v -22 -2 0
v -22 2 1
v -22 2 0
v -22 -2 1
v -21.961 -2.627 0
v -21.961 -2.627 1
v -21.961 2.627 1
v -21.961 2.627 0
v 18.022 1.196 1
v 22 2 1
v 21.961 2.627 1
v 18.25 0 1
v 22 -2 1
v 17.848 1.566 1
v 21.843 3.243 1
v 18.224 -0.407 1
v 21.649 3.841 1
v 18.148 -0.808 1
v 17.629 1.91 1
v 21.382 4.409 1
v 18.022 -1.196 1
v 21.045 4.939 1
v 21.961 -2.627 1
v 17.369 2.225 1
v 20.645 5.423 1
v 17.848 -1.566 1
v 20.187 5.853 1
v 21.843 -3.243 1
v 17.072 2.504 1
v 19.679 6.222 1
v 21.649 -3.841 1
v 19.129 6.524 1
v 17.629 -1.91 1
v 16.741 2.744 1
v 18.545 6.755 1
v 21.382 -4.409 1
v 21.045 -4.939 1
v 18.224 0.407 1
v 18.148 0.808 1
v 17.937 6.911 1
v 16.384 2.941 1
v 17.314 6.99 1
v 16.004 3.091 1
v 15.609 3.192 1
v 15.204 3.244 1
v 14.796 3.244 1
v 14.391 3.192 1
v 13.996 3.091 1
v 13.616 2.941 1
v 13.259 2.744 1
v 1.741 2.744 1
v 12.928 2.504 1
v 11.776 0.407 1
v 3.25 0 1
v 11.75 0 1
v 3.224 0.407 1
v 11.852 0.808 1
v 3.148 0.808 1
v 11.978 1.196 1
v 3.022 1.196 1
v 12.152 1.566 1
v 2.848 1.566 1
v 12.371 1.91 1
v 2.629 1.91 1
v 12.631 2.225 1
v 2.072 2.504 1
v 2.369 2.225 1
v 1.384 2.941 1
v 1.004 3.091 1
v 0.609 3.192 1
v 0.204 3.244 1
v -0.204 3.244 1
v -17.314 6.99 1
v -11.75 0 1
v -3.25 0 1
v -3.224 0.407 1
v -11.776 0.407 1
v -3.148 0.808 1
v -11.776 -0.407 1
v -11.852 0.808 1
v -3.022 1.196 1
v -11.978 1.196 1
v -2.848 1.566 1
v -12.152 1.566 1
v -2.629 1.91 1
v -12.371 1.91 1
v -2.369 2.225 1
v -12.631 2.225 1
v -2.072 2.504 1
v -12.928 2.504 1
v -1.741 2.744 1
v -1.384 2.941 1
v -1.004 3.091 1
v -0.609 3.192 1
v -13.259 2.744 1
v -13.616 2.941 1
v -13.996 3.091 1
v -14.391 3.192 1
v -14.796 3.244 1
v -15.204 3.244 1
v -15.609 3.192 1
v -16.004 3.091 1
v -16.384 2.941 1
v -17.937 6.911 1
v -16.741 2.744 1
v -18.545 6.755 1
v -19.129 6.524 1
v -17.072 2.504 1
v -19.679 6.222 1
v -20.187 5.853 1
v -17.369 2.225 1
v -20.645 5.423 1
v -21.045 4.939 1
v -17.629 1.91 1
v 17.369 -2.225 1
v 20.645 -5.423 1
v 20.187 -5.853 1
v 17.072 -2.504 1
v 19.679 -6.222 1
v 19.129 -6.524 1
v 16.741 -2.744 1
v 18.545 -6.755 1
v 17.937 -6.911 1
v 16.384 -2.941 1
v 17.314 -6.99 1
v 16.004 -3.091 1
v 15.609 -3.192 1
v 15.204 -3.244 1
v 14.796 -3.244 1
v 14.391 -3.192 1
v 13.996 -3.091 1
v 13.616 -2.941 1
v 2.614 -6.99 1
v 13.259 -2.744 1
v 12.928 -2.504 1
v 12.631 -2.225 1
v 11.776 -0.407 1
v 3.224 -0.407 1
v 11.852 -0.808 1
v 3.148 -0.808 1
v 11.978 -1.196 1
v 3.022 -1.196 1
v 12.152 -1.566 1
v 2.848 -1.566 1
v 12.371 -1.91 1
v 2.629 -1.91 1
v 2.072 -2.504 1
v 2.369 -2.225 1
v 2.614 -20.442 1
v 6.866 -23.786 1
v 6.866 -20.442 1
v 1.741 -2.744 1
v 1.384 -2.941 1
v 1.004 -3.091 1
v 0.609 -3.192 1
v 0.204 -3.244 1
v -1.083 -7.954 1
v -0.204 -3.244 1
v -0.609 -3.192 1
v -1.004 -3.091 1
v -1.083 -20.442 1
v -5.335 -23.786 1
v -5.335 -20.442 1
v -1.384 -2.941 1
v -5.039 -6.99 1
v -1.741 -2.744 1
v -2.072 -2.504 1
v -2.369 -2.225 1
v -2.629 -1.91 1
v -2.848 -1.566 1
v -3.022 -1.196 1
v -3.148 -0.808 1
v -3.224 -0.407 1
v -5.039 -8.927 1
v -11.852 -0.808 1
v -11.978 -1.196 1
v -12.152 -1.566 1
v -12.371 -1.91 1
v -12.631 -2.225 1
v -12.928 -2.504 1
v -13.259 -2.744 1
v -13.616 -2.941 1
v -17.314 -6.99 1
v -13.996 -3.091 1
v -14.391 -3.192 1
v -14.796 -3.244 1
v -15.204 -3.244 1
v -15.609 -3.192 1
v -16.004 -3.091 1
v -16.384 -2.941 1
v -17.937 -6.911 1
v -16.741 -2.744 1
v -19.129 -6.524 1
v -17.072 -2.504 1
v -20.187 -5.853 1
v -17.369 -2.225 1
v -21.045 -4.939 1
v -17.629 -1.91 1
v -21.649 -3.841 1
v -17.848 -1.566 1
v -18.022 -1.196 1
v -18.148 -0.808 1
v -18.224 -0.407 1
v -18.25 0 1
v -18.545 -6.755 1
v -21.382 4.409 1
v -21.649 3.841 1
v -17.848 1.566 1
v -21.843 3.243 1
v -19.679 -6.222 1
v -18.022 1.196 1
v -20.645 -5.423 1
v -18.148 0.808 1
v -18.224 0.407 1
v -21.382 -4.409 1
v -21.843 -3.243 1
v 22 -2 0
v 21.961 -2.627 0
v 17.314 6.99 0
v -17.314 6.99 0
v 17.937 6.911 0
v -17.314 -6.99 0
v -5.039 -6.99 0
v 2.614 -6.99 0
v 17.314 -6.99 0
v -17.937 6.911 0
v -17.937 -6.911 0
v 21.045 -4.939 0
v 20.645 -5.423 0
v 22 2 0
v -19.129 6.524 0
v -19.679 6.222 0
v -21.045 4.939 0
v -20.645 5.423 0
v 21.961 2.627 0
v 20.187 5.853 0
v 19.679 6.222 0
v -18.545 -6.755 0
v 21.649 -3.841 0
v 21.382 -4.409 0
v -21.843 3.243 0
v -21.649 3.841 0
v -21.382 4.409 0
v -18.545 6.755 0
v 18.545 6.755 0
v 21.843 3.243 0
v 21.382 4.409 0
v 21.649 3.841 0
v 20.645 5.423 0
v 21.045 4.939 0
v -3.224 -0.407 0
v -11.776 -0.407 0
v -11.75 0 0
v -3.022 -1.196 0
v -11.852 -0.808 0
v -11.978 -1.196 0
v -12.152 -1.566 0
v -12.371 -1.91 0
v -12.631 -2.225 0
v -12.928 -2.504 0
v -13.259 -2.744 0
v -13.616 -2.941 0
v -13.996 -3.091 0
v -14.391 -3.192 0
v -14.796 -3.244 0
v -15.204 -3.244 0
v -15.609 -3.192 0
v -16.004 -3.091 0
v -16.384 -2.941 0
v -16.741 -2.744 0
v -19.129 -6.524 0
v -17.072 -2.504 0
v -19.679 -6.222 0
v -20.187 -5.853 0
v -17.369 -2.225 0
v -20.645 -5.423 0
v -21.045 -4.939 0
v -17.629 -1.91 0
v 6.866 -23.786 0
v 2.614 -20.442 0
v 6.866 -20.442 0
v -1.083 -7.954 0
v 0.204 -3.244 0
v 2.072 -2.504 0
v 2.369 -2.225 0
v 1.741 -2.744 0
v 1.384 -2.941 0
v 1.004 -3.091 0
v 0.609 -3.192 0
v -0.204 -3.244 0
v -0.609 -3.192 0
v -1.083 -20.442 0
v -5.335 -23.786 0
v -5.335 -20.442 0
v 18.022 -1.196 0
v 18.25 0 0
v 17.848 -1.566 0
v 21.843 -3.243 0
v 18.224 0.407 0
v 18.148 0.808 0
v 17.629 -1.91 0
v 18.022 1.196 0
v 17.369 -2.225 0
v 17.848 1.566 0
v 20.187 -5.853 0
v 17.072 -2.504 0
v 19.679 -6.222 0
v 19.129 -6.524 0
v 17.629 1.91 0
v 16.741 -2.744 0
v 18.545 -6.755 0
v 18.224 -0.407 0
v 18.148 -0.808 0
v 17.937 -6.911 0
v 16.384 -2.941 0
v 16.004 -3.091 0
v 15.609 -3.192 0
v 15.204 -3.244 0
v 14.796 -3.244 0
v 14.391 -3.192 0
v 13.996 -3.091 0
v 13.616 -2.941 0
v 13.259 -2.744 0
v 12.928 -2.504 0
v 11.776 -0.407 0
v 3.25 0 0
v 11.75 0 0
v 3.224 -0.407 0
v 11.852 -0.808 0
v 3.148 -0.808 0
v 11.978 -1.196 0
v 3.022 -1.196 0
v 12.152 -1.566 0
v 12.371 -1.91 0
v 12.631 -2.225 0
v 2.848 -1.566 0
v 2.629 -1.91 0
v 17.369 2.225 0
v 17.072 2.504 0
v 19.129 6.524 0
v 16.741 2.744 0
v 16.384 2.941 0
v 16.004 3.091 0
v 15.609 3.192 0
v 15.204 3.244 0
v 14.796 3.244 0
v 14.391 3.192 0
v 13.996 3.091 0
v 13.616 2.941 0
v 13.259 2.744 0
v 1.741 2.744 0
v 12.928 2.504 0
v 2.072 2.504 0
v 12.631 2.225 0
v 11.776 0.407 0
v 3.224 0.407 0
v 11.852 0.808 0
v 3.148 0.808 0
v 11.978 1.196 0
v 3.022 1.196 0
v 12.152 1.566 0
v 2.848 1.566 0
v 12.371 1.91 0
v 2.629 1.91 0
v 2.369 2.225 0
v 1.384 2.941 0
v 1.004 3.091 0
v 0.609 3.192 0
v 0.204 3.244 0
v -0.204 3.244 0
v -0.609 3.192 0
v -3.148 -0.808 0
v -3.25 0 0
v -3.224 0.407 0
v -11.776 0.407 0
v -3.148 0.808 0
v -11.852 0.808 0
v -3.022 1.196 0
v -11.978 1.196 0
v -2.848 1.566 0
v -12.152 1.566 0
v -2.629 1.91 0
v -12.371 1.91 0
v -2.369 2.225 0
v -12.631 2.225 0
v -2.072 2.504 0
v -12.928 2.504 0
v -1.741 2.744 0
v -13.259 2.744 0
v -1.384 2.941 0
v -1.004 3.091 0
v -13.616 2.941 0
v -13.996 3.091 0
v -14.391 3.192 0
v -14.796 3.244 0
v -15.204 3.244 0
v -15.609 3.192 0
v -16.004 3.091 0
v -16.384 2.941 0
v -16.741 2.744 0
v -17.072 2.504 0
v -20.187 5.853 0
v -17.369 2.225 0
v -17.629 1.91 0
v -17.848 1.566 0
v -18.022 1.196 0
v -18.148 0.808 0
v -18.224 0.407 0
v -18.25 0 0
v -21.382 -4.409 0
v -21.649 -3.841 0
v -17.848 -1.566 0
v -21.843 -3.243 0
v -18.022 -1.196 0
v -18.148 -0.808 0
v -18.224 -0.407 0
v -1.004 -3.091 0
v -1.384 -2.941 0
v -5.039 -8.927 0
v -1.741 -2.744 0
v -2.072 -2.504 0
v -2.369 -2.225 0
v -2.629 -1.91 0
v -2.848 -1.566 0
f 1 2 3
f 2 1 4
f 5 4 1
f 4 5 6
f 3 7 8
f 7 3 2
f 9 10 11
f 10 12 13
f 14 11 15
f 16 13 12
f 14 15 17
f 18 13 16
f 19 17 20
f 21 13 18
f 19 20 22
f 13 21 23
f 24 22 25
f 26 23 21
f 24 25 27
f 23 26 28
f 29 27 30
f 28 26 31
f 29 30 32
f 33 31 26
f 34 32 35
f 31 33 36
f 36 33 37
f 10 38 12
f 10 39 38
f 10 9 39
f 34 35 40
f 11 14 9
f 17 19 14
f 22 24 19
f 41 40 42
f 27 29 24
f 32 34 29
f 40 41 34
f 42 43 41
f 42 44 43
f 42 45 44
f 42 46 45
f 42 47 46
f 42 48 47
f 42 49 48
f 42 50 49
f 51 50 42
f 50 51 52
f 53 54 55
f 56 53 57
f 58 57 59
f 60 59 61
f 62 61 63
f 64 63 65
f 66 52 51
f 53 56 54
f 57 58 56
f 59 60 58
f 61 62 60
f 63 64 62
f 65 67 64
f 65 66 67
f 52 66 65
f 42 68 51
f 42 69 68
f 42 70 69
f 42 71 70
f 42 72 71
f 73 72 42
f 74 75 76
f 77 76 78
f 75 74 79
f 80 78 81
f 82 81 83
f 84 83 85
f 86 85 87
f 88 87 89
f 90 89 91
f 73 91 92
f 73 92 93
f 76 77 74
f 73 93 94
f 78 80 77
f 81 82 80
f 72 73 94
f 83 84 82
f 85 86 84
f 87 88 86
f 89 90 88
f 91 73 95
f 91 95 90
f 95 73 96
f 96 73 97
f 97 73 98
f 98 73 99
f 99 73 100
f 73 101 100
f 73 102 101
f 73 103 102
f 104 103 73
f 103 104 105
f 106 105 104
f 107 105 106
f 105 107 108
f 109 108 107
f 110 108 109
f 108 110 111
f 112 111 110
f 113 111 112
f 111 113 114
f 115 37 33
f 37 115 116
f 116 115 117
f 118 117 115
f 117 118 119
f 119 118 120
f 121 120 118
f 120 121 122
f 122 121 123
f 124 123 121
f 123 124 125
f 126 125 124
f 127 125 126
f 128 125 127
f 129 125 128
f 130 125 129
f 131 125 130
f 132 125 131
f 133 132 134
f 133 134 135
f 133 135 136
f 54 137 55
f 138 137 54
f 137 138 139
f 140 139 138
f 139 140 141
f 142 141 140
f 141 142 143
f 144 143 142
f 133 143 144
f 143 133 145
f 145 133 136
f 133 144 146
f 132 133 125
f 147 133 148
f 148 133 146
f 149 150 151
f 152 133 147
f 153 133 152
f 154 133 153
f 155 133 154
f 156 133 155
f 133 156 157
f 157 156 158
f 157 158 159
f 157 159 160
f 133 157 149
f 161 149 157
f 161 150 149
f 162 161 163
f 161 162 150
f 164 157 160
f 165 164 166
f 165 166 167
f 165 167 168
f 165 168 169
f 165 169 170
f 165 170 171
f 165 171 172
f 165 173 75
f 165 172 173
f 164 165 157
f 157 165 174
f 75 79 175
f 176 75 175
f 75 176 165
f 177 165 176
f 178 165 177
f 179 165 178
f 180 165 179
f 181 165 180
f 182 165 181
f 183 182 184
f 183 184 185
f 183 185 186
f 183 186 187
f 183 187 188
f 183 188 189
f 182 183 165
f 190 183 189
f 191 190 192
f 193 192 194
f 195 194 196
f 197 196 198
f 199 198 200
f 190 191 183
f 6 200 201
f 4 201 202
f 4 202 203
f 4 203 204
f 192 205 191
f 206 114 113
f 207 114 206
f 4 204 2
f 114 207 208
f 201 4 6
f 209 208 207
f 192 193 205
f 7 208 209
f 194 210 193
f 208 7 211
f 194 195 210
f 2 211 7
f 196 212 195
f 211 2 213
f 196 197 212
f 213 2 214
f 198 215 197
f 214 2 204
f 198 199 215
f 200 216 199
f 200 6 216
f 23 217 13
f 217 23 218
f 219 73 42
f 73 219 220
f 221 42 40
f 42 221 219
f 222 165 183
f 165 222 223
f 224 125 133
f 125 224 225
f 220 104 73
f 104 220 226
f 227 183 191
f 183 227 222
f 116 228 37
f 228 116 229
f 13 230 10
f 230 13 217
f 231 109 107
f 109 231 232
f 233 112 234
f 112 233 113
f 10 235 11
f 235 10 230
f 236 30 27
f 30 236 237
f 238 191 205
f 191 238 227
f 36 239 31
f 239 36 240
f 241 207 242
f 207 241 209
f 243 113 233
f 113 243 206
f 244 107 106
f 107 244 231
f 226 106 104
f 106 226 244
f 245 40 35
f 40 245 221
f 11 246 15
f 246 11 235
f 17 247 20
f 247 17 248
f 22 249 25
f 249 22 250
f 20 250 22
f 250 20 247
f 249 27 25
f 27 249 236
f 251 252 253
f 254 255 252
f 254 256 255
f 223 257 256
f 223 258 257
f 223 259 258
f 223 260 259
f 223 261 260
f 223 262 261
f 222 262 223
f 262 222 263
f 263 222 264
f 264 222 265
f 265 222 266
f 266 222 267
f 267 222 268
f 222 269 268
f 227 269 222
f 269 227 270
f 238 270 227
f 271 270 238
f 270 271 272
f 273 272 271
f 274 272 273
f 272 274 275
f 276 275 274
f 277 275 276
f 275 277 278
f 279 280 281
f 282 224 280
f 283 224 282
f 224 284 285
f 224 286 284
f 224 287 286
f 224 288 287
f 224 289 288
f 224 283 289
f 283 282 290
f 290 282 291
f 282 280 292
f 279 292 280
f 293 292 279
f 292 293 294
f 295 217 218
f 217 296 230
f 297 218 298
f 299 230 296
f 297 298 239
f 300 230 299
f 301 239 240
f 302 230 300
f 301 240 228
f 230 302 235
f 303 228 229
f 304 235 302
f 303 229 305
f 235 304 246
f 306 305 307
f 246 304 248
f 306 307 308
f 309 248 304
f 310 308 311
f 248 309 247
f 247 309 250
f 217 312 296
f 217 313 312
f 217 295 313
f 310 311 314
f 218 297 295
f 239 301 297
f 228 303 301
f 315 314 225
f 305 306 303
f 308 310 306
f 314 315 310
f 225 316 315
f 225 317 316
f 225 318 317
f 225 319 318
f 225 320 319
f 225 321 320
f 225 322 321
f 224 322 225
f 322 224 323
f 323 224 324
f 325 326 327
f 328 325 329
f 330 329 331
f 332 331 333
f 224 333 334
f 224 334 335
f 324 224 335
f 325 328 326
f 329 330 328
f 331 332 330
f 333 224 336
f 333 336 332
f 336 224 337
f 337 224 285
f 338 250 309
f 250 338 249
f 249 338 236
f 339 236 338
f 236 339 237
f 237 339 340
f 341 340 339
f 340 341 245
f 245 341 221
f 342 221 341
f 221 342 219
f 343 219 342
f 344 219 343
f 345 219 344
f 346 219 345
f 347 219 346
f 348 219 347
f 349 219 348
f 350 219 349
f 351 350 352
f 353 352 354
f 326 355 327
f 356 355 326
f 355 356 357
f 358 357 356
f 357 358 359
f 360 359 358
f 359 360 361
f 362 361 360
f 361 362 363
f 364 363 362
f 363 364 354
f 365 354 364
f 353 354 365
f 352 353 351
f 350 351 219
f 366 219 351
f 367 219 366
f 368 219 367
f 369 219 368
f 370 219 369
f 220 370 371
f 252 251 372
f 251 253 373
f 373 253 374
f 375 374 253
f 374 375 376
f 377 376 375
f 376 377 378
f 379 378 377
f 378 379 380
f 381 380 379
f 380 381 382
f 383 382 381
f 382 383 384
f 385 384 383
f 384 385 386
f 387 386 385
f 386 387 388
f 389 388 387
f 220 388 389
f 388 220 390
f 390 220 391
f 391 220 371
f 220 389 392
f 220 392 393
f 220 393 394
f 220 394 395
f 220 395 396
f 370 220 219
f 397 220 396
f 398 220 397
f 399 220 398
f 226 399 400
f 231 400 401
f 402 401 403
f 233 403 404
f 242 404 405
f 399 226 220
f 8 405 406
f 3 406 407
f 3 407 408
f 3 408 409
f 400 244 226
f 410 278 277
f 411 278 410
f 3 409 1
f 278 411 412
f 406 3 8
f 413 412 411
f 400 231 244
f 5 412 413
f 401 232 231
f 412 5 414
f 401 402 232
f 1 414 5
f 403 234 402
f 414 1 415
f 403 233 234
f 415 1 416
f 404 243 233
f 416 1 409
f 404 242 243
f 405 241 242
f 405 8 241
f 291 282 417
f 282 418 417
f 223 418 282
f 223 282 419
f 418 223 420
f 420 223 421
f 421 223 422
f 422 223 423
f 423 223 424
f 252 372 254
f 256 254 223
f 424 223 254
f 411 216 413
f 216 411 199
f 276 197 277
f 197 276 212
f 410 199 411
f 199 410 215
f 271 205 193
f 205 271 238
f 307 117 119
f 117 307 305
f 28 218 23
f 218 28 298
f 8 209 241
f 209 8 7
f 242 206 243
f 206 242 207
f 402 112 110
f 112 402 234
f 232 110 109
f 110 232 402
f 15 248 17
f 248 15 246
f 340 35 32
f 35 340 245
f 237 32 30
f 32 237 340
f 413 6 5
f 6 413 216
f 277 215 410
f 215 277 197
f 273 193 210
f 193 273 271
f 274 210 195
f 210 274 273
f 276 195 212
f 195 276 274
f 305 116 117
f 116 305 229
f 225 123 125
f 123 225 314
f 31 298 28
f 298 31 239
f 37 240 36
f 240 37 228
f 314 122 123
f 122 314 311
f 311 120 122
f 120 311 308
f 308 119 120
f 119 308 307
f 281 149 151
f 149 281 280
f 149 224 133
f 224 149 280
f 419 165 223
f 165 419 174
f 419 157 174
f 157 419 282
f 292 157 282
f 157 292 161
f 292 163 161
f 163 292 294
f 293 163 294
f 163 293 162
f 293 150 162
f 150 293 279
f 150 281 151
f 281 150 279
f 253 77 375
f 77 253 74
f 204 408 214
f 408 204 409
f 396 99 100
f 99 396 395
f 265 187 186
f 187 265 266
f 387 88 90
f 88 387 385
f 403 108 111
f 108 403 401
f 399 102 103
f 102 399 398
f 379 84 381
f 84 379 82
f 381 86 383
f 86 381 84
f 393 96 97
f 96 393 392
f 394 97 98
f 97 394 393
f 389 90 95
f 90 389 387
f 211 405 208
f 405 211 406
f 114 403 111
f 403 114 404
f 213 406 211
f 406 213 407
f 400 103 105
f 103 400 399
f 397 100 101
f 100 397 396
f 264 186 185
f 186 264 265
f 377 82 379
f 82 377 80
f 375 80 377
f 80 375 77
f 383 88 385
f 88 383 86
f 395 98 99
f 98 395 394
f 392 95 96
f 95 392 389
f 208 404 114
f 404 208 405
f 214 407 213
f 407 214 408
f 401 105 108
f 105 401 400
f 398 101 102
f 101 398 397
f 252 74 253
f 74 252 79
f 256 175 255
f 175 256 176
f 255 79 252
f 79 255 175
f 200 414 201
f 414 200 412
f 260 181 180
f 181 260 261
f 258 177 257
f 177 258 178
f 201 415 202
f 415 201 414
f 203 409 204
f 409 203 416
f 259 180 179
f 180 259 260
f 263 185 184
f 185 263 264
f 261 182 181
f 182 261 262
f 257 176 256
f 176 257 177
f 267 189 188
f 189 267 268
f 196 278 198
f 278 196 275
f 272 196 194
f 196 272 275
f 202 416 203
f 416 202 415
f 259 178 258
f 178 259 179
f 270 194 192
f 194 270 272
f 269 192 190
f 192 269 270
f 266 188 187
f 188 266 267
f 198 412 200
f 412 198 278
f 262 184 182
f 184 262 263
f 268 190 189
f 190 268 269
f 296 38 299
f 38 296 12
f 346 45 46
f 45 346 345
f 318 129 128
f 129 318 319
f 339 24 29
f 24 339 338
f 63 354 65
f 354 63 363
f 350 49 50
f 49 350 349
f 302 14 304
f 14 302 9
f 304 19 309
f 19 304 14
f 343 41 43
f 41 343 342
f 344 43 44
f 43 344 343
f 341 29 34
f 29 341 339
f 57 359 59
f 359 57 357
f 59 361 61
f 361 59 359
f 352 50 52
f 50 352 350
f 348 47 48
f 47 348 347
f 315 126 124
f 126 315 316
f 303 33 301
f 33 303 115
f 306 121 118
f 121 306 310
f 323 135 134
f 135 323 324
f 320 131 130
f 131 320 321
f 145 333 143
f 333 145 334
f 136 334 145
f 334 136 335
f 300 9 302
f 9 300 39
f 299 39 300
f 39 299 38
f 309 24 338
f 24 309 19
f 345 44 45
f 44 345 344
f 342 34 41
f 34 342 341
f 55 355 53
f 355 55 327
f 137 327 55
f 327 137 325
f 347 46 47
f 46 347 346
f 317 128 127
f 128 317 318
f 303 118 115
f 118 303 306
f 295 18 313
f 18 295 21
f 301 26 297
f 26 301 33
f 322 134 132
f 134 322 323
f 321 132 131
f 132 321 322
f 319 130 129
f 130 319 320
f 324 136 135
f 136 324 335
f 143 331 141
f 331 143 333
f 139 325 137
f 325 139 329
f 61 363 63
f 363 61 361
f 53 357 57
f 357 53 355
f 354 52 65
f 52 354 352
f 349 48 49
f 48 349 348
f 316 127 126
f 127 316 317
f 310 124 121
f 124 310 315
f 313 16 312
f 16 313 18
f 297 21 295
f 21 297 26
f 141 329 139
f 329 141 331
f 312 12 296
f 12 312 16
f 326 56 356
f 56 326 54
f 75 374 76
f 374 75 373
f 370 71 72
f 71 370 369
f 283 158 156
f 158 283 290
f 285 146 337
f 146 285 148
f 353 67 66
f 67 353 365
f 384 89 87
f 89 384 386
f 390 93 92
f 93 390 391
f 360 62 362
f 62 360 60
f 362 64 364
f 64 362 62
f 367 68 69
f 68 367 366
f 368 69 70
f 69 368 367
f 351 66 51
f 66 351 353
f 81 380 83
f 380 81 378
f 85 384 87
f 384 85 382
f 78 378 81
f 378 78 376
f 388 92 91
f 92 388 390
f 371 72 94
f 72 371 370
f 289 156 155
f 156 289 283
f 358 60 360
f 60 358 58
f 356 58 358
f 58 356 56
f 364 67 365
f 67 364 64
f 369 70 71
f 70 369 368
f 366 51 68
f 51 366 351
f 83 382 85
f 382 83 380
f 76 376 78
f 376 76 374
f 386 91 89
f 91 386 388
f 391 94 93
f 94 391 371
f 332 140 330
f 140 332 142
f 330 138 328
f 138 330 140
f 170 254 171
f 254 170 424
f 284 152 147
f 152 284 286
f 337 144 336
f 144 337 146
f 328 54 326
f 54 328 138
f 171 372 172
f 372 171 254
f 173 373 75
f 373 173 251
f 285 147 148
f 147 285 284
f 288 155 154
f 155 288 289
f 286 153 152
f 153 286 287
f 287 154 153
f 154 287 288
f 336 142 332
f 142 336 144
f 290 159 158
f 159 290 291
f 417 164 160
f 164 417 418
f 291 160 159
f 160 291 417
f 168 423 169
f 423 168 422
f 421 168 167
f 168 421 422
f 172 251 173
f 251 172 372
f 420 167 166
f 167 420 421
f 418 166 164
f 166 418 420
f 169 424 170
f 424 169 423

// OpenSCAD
$fn = 50;


difference() {
	union() {
		translate(v = [0, 0, 0]) {
			rotate(a = [0, 0, 0]) {
				hull() {
					translate(v = [-17.0000000000, 2.0000000000, 0]) {
						rotate(a = [0, 0, 0]) {
							translate(v = [0, 0, 0]) {
								rotate(a = [0, 0, 0]) {
									cylinder(h = 1, r = 5);
								}
							}
						}
					}
					translate(v = [17.0000000000, 2.0000000000, 0]) {
						rotate(a = [0, 0, 0]) {
							translate(v = [0, 0, 0]) {
								rotate(a = [0, 0, 0]) {
									cylinder(h = 1, r = 5);
								}
							}
						}
					}
					translate(v = [-17.0000000000, -2.0000000000, 0]) {
						rotate(a = [0, 0, 0]) {
							translate(v = [0, 0, 0]) {
								rotate(a = [0, 0, 0]) {
									cylinder(h = 1, r = 5);
								}
							}
						}
					}
					translate(v = [17.0000000000, -2.0000000000, 0]) {
						rotate(a = [0, 0, 0]) {
							translate(v = [0, 0, 0]) {
								rotate(a = [0, 0, 0]) {
									cylinder(h = 1, r = 5);
								}
							}
						}
					}
				}
			}
		}
		translate(v = [0, -5, 0]) {
			rotate(a = [0, 0, 0]) {
				linear_extrude(height = 1) {
					text(font = "DejaVu Sans Mono:style=Bold", halign = "center", size = 19.0000000000, text = "1", valign = "top");
				}
			}
		}
	}
	union() {
		translate(v = [-15.0000000000, 0.0000000000, -125.0000000000]) {
			rotate(a = [0, 0, 0]) {
				cylinder(h = 250, r = 3.2500000000);
			}
		}
		translate(v = [15.0000000000, 0.0000000000, -125.0000000000]) {
			rotate(a = [0, 0, 0]) {
				cylinder(h = 250, r = 3.2500000000);
			}
		}
		translate(v = [15.0000000000, 0.0000000000, -125.0000000000]) {
			rotate(a = [0, 0, 0]) {
				cylinder(h = 250, r = 3.2500000000);
			}
		}
		translate(v = [0, 0, -125.0000000000]) {
			rotate(a = [0, 0, 0]) {
				cylinder(h = 250, r = 3.2500000000);
			}
		}
	}
}
